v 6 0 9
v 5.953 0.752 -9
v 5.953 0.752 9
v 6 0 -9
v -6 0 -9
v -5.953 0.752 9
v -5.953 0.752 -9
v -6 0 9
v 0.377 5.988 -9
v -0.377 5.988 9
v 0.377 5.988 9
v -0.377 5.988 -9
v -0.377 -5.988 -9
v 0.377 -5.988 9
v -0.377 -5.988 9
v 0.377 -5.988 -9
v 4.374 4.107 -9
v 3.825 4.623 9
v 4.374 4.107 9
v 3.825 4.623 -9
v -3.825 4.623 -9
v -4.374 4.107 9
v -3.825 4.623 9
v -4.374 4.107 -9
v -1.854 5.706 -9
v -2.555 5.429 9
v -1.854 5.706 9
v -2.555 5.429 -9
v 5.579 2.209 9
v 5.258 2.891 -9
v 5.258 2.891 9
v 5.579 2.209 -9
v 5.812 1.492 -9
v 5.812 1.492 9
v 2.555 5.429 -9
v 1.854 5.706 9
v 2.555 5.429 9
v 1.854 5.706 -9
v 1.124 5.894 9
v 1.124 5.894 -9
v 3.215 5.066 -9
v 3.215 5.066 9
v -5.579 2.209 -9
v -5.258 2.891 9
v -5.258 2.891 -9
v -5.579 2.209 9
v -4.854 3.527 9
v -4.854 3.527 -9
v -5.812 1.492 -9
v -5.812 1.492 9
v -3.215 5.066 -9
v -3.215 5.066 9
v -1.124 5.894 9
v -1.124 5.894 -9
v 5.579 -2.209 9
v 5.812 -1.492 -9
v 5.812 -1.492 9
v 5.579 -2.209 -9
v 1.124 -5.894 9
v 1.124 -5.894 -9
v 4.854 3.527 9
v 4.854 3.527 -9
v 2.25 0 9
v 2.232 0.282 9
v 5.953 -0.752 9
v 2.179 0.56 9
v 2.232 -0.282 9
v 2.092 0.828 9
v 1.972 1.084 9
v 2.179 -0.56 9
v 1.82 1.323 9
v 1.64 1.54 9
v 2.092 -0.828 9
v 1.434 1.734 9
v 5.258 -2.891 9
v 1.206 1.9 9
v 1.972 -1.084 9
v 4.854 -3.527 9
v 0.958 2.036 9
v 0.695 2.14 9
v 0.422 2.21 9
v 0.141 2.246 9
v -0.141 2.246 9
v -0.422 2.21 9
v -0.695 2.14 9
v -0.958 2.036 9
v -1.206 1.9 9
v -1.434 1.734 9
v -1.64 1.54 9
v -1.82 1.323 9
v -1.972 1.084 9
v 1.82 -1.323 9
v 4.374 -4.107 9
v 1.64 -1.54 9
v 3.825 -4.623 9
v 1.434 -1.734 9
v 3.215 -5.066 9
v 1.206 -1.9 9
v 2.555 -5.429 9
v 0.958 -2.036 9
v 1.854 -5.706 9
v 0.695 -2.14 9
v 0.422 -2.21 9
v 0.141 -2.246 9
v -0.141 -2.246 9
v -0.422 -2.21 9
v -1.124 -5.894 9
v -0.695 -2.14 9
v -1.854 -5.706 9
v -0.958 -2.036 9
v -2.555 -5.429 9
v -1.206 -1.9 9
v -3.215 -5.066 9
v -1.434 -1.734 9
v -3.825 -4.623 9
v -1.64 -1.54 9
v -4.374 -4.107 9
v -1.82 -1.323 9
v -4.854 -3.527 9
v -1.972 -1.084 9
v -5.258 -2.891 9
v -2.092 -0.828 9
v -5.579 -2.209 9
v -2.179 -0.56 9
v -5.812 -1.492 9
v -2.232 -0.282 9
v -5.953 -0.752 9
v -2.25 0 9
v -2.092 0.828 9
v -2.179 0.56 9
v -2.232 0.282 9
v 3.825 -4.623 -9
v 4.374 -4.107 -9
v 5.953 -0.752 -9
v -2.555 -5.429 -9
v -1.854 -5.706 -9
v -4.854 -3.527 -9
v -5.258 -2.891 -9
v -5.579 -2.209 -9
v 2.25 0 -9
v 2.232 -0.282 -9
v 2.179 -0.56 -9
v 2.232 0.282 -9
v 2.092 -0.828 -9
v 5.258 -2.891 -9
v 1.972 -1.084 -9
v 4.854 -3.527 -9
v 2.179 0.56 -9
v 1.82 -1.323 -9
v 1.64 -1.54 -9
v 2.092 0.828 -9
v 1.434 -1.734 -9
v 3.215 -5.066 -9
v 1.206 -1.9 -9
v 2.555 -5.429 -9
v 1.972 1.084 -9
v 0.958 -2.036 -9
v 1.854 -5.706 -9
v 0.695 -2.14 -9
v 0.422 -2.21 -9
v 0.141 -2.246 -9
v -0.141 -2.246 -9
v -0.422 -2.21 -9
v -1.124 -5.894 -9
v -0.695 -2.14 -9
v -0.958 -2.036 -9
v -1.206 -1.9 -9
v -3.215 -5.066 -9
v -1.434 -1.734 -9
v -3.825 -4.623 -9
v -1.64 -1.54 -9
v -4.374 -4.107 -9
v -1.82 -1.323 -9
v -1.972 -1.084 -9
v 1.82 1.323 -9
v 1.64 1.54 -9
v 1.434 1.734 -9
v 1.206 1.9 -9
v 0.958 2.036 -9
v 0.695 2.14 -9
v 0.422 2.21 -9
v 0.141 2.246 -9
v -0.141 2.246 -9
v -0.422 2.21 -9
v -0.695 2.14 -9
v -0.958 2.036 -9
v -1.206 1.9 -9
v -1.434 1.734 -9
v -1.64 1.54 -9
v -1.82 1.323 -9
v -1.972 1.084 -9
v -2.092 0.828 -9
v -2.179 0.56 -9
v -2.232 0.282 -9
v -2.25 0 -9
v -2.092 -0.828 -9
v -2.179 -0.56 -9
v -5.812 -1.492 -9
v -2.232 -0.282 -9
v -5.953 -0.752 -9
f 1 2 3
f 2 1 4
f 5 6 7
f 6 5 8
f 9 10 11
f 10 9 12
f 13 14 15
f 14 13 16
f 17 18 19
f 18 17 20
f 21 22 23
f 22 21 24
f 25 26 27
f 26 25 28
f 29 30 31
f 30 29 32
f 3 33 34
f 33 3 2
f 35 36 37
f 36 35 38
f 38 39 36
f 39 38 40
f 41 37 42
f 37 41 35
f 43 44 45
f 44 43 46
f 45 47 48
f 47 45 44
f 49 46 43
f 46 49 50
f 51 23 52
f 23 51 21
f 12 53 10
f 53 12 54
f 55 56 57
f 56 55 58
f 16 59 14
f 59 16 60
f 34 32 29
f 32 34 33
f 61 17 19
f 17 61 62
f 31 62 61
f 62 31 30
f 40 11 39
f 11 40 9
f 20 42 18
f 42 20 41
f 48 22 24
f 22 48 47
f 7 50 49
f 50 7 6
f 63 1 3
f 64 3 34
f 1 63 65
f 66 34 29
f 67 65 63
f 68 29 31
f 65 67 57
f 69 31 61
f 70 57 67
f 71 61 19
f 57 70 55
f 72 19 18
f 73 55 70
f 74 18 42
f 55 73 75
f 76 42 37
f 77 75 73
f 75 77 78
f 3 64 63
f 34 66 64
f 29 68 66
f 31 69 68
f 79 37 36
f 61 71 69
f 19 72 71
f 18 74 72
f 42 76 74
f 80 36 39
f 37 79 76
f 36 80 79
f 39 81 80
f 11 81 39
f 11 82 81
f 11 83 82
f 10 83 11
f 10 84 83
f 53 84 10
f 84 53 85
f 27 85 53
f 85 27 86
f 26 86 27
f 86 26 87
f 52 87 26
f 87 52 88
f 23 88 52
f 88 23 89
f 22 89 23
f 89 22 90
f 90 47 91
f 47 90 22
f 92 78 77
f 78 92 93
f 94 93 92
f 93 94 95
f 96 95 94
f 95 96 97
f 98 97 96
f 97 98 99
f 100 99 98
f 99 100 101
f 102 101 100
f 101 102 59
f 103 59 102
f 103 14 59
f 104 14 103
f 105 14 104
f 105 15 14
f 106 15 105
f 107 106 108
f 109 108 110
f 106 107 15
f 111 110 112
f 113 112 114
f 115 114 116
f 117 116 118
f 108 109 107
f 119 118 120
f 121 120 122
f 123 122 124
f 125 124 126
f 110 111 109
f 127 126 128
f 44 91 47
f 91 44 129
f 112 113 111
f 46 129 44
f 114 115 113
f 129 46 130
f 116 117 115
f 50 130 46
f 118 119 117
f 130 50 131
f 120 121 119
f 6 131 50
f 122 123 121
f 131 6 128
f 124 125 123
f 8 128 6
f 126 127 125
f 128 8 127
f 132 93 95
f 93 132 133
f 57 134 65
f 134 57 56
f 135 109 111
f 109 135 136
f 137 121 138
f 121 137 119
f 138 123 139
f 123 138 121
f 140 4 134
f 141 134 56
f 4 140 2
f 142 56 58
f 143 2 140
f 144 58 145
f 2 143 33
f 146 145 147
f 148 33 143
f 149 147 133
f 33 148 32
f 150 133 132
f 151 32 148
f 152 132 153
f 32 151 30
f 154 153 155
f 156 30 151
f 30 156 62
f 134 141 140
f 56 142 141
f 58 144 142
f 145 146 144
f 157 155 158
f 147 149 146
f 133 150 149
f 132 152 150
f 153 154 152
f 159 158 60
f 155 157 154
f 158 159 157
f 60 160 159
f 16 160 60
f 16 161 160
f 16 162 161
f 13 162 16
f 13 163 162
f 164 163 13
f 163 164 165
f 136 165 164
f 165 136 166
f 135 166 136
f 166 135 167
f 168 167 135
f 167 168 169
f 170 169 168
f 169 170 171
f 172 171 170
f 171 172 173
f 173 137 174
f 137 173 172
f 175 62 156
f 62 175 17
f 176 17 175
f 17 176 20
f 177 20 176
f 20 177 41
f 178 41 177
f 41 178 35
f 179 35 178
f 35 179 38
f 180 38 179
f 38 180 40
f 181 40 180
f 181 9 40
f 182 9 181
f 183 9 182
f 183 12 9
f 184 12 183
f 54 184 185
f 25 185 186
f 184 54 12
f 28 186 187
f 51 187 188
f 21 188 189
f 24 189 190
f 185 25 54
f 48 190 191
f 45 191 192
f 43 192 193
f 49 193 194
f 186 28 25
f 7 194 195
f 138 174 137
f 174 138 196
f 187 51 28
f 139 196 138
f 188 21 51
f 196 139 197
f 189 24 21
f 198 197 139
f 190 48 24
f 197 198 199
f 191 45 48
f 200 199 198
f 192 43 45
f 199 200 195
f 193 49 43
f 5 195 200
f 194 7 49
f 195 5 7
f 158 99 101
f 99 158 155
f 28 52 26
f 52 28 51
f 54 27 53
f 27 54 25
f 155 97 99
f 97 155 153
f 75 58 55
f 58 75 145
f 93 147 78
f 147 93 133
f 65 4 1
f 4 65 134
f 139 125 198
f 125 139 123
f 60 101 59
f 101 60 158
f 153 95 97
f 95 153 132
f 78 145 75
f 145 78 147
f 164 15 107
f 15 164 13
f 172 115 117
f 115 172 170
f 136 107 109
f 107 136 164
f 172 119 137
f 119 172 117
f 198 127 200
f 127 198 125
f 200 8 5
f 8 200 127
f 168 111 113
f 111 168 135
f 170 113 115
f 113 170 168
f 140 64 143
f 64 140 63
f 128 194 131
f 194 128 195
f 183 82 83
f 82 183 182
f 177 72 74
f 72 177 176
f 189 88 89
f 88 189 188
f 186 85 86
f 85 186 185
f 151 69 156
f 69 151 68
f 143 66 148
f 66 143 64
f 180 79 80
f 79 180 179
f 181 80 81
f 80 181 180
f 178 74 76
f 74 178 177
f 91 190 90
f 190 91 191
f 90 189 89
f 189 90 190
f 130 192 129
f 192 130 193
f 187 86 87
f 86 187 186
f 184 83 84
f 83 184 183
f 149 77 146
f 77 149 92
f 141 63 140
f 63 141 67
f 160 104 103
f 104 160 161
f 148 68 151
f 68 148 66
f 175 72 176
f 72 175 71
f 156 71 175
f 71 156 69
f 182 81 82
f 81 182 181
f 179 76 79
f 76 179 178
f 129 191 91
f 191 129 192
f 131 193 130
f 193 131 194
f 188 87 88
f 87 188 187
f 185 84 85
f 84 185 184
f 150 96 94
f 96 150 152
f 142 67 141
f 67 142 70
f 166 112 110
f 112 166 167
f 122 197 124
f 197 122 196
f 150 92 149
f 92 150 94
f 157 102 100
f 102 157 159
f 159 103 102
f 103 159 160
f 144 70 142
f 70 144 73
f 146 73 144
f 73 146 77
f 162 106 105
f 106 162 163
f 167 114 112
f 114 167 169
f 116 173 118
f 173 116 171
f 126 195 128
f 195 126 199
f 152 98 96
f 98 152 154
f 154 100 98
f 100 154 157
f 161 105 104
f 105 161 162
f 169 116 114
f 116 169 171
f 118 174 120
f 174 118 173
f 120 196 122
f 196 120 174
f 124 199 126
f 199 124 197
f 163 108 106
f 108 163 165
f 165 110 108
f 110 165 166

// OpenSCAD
$fn = 50;


difference() {
	union() {
		translate(v = [0, 0, -9.0000000000]) {
			cylinder(h = 18, r = 6.0000000000);
		}
	}
	union() {
		translate(v = [0, 0, -100.0000000000]) {
			cylinder(h = 200, r = 2.2500000000);
		}
	}
}
